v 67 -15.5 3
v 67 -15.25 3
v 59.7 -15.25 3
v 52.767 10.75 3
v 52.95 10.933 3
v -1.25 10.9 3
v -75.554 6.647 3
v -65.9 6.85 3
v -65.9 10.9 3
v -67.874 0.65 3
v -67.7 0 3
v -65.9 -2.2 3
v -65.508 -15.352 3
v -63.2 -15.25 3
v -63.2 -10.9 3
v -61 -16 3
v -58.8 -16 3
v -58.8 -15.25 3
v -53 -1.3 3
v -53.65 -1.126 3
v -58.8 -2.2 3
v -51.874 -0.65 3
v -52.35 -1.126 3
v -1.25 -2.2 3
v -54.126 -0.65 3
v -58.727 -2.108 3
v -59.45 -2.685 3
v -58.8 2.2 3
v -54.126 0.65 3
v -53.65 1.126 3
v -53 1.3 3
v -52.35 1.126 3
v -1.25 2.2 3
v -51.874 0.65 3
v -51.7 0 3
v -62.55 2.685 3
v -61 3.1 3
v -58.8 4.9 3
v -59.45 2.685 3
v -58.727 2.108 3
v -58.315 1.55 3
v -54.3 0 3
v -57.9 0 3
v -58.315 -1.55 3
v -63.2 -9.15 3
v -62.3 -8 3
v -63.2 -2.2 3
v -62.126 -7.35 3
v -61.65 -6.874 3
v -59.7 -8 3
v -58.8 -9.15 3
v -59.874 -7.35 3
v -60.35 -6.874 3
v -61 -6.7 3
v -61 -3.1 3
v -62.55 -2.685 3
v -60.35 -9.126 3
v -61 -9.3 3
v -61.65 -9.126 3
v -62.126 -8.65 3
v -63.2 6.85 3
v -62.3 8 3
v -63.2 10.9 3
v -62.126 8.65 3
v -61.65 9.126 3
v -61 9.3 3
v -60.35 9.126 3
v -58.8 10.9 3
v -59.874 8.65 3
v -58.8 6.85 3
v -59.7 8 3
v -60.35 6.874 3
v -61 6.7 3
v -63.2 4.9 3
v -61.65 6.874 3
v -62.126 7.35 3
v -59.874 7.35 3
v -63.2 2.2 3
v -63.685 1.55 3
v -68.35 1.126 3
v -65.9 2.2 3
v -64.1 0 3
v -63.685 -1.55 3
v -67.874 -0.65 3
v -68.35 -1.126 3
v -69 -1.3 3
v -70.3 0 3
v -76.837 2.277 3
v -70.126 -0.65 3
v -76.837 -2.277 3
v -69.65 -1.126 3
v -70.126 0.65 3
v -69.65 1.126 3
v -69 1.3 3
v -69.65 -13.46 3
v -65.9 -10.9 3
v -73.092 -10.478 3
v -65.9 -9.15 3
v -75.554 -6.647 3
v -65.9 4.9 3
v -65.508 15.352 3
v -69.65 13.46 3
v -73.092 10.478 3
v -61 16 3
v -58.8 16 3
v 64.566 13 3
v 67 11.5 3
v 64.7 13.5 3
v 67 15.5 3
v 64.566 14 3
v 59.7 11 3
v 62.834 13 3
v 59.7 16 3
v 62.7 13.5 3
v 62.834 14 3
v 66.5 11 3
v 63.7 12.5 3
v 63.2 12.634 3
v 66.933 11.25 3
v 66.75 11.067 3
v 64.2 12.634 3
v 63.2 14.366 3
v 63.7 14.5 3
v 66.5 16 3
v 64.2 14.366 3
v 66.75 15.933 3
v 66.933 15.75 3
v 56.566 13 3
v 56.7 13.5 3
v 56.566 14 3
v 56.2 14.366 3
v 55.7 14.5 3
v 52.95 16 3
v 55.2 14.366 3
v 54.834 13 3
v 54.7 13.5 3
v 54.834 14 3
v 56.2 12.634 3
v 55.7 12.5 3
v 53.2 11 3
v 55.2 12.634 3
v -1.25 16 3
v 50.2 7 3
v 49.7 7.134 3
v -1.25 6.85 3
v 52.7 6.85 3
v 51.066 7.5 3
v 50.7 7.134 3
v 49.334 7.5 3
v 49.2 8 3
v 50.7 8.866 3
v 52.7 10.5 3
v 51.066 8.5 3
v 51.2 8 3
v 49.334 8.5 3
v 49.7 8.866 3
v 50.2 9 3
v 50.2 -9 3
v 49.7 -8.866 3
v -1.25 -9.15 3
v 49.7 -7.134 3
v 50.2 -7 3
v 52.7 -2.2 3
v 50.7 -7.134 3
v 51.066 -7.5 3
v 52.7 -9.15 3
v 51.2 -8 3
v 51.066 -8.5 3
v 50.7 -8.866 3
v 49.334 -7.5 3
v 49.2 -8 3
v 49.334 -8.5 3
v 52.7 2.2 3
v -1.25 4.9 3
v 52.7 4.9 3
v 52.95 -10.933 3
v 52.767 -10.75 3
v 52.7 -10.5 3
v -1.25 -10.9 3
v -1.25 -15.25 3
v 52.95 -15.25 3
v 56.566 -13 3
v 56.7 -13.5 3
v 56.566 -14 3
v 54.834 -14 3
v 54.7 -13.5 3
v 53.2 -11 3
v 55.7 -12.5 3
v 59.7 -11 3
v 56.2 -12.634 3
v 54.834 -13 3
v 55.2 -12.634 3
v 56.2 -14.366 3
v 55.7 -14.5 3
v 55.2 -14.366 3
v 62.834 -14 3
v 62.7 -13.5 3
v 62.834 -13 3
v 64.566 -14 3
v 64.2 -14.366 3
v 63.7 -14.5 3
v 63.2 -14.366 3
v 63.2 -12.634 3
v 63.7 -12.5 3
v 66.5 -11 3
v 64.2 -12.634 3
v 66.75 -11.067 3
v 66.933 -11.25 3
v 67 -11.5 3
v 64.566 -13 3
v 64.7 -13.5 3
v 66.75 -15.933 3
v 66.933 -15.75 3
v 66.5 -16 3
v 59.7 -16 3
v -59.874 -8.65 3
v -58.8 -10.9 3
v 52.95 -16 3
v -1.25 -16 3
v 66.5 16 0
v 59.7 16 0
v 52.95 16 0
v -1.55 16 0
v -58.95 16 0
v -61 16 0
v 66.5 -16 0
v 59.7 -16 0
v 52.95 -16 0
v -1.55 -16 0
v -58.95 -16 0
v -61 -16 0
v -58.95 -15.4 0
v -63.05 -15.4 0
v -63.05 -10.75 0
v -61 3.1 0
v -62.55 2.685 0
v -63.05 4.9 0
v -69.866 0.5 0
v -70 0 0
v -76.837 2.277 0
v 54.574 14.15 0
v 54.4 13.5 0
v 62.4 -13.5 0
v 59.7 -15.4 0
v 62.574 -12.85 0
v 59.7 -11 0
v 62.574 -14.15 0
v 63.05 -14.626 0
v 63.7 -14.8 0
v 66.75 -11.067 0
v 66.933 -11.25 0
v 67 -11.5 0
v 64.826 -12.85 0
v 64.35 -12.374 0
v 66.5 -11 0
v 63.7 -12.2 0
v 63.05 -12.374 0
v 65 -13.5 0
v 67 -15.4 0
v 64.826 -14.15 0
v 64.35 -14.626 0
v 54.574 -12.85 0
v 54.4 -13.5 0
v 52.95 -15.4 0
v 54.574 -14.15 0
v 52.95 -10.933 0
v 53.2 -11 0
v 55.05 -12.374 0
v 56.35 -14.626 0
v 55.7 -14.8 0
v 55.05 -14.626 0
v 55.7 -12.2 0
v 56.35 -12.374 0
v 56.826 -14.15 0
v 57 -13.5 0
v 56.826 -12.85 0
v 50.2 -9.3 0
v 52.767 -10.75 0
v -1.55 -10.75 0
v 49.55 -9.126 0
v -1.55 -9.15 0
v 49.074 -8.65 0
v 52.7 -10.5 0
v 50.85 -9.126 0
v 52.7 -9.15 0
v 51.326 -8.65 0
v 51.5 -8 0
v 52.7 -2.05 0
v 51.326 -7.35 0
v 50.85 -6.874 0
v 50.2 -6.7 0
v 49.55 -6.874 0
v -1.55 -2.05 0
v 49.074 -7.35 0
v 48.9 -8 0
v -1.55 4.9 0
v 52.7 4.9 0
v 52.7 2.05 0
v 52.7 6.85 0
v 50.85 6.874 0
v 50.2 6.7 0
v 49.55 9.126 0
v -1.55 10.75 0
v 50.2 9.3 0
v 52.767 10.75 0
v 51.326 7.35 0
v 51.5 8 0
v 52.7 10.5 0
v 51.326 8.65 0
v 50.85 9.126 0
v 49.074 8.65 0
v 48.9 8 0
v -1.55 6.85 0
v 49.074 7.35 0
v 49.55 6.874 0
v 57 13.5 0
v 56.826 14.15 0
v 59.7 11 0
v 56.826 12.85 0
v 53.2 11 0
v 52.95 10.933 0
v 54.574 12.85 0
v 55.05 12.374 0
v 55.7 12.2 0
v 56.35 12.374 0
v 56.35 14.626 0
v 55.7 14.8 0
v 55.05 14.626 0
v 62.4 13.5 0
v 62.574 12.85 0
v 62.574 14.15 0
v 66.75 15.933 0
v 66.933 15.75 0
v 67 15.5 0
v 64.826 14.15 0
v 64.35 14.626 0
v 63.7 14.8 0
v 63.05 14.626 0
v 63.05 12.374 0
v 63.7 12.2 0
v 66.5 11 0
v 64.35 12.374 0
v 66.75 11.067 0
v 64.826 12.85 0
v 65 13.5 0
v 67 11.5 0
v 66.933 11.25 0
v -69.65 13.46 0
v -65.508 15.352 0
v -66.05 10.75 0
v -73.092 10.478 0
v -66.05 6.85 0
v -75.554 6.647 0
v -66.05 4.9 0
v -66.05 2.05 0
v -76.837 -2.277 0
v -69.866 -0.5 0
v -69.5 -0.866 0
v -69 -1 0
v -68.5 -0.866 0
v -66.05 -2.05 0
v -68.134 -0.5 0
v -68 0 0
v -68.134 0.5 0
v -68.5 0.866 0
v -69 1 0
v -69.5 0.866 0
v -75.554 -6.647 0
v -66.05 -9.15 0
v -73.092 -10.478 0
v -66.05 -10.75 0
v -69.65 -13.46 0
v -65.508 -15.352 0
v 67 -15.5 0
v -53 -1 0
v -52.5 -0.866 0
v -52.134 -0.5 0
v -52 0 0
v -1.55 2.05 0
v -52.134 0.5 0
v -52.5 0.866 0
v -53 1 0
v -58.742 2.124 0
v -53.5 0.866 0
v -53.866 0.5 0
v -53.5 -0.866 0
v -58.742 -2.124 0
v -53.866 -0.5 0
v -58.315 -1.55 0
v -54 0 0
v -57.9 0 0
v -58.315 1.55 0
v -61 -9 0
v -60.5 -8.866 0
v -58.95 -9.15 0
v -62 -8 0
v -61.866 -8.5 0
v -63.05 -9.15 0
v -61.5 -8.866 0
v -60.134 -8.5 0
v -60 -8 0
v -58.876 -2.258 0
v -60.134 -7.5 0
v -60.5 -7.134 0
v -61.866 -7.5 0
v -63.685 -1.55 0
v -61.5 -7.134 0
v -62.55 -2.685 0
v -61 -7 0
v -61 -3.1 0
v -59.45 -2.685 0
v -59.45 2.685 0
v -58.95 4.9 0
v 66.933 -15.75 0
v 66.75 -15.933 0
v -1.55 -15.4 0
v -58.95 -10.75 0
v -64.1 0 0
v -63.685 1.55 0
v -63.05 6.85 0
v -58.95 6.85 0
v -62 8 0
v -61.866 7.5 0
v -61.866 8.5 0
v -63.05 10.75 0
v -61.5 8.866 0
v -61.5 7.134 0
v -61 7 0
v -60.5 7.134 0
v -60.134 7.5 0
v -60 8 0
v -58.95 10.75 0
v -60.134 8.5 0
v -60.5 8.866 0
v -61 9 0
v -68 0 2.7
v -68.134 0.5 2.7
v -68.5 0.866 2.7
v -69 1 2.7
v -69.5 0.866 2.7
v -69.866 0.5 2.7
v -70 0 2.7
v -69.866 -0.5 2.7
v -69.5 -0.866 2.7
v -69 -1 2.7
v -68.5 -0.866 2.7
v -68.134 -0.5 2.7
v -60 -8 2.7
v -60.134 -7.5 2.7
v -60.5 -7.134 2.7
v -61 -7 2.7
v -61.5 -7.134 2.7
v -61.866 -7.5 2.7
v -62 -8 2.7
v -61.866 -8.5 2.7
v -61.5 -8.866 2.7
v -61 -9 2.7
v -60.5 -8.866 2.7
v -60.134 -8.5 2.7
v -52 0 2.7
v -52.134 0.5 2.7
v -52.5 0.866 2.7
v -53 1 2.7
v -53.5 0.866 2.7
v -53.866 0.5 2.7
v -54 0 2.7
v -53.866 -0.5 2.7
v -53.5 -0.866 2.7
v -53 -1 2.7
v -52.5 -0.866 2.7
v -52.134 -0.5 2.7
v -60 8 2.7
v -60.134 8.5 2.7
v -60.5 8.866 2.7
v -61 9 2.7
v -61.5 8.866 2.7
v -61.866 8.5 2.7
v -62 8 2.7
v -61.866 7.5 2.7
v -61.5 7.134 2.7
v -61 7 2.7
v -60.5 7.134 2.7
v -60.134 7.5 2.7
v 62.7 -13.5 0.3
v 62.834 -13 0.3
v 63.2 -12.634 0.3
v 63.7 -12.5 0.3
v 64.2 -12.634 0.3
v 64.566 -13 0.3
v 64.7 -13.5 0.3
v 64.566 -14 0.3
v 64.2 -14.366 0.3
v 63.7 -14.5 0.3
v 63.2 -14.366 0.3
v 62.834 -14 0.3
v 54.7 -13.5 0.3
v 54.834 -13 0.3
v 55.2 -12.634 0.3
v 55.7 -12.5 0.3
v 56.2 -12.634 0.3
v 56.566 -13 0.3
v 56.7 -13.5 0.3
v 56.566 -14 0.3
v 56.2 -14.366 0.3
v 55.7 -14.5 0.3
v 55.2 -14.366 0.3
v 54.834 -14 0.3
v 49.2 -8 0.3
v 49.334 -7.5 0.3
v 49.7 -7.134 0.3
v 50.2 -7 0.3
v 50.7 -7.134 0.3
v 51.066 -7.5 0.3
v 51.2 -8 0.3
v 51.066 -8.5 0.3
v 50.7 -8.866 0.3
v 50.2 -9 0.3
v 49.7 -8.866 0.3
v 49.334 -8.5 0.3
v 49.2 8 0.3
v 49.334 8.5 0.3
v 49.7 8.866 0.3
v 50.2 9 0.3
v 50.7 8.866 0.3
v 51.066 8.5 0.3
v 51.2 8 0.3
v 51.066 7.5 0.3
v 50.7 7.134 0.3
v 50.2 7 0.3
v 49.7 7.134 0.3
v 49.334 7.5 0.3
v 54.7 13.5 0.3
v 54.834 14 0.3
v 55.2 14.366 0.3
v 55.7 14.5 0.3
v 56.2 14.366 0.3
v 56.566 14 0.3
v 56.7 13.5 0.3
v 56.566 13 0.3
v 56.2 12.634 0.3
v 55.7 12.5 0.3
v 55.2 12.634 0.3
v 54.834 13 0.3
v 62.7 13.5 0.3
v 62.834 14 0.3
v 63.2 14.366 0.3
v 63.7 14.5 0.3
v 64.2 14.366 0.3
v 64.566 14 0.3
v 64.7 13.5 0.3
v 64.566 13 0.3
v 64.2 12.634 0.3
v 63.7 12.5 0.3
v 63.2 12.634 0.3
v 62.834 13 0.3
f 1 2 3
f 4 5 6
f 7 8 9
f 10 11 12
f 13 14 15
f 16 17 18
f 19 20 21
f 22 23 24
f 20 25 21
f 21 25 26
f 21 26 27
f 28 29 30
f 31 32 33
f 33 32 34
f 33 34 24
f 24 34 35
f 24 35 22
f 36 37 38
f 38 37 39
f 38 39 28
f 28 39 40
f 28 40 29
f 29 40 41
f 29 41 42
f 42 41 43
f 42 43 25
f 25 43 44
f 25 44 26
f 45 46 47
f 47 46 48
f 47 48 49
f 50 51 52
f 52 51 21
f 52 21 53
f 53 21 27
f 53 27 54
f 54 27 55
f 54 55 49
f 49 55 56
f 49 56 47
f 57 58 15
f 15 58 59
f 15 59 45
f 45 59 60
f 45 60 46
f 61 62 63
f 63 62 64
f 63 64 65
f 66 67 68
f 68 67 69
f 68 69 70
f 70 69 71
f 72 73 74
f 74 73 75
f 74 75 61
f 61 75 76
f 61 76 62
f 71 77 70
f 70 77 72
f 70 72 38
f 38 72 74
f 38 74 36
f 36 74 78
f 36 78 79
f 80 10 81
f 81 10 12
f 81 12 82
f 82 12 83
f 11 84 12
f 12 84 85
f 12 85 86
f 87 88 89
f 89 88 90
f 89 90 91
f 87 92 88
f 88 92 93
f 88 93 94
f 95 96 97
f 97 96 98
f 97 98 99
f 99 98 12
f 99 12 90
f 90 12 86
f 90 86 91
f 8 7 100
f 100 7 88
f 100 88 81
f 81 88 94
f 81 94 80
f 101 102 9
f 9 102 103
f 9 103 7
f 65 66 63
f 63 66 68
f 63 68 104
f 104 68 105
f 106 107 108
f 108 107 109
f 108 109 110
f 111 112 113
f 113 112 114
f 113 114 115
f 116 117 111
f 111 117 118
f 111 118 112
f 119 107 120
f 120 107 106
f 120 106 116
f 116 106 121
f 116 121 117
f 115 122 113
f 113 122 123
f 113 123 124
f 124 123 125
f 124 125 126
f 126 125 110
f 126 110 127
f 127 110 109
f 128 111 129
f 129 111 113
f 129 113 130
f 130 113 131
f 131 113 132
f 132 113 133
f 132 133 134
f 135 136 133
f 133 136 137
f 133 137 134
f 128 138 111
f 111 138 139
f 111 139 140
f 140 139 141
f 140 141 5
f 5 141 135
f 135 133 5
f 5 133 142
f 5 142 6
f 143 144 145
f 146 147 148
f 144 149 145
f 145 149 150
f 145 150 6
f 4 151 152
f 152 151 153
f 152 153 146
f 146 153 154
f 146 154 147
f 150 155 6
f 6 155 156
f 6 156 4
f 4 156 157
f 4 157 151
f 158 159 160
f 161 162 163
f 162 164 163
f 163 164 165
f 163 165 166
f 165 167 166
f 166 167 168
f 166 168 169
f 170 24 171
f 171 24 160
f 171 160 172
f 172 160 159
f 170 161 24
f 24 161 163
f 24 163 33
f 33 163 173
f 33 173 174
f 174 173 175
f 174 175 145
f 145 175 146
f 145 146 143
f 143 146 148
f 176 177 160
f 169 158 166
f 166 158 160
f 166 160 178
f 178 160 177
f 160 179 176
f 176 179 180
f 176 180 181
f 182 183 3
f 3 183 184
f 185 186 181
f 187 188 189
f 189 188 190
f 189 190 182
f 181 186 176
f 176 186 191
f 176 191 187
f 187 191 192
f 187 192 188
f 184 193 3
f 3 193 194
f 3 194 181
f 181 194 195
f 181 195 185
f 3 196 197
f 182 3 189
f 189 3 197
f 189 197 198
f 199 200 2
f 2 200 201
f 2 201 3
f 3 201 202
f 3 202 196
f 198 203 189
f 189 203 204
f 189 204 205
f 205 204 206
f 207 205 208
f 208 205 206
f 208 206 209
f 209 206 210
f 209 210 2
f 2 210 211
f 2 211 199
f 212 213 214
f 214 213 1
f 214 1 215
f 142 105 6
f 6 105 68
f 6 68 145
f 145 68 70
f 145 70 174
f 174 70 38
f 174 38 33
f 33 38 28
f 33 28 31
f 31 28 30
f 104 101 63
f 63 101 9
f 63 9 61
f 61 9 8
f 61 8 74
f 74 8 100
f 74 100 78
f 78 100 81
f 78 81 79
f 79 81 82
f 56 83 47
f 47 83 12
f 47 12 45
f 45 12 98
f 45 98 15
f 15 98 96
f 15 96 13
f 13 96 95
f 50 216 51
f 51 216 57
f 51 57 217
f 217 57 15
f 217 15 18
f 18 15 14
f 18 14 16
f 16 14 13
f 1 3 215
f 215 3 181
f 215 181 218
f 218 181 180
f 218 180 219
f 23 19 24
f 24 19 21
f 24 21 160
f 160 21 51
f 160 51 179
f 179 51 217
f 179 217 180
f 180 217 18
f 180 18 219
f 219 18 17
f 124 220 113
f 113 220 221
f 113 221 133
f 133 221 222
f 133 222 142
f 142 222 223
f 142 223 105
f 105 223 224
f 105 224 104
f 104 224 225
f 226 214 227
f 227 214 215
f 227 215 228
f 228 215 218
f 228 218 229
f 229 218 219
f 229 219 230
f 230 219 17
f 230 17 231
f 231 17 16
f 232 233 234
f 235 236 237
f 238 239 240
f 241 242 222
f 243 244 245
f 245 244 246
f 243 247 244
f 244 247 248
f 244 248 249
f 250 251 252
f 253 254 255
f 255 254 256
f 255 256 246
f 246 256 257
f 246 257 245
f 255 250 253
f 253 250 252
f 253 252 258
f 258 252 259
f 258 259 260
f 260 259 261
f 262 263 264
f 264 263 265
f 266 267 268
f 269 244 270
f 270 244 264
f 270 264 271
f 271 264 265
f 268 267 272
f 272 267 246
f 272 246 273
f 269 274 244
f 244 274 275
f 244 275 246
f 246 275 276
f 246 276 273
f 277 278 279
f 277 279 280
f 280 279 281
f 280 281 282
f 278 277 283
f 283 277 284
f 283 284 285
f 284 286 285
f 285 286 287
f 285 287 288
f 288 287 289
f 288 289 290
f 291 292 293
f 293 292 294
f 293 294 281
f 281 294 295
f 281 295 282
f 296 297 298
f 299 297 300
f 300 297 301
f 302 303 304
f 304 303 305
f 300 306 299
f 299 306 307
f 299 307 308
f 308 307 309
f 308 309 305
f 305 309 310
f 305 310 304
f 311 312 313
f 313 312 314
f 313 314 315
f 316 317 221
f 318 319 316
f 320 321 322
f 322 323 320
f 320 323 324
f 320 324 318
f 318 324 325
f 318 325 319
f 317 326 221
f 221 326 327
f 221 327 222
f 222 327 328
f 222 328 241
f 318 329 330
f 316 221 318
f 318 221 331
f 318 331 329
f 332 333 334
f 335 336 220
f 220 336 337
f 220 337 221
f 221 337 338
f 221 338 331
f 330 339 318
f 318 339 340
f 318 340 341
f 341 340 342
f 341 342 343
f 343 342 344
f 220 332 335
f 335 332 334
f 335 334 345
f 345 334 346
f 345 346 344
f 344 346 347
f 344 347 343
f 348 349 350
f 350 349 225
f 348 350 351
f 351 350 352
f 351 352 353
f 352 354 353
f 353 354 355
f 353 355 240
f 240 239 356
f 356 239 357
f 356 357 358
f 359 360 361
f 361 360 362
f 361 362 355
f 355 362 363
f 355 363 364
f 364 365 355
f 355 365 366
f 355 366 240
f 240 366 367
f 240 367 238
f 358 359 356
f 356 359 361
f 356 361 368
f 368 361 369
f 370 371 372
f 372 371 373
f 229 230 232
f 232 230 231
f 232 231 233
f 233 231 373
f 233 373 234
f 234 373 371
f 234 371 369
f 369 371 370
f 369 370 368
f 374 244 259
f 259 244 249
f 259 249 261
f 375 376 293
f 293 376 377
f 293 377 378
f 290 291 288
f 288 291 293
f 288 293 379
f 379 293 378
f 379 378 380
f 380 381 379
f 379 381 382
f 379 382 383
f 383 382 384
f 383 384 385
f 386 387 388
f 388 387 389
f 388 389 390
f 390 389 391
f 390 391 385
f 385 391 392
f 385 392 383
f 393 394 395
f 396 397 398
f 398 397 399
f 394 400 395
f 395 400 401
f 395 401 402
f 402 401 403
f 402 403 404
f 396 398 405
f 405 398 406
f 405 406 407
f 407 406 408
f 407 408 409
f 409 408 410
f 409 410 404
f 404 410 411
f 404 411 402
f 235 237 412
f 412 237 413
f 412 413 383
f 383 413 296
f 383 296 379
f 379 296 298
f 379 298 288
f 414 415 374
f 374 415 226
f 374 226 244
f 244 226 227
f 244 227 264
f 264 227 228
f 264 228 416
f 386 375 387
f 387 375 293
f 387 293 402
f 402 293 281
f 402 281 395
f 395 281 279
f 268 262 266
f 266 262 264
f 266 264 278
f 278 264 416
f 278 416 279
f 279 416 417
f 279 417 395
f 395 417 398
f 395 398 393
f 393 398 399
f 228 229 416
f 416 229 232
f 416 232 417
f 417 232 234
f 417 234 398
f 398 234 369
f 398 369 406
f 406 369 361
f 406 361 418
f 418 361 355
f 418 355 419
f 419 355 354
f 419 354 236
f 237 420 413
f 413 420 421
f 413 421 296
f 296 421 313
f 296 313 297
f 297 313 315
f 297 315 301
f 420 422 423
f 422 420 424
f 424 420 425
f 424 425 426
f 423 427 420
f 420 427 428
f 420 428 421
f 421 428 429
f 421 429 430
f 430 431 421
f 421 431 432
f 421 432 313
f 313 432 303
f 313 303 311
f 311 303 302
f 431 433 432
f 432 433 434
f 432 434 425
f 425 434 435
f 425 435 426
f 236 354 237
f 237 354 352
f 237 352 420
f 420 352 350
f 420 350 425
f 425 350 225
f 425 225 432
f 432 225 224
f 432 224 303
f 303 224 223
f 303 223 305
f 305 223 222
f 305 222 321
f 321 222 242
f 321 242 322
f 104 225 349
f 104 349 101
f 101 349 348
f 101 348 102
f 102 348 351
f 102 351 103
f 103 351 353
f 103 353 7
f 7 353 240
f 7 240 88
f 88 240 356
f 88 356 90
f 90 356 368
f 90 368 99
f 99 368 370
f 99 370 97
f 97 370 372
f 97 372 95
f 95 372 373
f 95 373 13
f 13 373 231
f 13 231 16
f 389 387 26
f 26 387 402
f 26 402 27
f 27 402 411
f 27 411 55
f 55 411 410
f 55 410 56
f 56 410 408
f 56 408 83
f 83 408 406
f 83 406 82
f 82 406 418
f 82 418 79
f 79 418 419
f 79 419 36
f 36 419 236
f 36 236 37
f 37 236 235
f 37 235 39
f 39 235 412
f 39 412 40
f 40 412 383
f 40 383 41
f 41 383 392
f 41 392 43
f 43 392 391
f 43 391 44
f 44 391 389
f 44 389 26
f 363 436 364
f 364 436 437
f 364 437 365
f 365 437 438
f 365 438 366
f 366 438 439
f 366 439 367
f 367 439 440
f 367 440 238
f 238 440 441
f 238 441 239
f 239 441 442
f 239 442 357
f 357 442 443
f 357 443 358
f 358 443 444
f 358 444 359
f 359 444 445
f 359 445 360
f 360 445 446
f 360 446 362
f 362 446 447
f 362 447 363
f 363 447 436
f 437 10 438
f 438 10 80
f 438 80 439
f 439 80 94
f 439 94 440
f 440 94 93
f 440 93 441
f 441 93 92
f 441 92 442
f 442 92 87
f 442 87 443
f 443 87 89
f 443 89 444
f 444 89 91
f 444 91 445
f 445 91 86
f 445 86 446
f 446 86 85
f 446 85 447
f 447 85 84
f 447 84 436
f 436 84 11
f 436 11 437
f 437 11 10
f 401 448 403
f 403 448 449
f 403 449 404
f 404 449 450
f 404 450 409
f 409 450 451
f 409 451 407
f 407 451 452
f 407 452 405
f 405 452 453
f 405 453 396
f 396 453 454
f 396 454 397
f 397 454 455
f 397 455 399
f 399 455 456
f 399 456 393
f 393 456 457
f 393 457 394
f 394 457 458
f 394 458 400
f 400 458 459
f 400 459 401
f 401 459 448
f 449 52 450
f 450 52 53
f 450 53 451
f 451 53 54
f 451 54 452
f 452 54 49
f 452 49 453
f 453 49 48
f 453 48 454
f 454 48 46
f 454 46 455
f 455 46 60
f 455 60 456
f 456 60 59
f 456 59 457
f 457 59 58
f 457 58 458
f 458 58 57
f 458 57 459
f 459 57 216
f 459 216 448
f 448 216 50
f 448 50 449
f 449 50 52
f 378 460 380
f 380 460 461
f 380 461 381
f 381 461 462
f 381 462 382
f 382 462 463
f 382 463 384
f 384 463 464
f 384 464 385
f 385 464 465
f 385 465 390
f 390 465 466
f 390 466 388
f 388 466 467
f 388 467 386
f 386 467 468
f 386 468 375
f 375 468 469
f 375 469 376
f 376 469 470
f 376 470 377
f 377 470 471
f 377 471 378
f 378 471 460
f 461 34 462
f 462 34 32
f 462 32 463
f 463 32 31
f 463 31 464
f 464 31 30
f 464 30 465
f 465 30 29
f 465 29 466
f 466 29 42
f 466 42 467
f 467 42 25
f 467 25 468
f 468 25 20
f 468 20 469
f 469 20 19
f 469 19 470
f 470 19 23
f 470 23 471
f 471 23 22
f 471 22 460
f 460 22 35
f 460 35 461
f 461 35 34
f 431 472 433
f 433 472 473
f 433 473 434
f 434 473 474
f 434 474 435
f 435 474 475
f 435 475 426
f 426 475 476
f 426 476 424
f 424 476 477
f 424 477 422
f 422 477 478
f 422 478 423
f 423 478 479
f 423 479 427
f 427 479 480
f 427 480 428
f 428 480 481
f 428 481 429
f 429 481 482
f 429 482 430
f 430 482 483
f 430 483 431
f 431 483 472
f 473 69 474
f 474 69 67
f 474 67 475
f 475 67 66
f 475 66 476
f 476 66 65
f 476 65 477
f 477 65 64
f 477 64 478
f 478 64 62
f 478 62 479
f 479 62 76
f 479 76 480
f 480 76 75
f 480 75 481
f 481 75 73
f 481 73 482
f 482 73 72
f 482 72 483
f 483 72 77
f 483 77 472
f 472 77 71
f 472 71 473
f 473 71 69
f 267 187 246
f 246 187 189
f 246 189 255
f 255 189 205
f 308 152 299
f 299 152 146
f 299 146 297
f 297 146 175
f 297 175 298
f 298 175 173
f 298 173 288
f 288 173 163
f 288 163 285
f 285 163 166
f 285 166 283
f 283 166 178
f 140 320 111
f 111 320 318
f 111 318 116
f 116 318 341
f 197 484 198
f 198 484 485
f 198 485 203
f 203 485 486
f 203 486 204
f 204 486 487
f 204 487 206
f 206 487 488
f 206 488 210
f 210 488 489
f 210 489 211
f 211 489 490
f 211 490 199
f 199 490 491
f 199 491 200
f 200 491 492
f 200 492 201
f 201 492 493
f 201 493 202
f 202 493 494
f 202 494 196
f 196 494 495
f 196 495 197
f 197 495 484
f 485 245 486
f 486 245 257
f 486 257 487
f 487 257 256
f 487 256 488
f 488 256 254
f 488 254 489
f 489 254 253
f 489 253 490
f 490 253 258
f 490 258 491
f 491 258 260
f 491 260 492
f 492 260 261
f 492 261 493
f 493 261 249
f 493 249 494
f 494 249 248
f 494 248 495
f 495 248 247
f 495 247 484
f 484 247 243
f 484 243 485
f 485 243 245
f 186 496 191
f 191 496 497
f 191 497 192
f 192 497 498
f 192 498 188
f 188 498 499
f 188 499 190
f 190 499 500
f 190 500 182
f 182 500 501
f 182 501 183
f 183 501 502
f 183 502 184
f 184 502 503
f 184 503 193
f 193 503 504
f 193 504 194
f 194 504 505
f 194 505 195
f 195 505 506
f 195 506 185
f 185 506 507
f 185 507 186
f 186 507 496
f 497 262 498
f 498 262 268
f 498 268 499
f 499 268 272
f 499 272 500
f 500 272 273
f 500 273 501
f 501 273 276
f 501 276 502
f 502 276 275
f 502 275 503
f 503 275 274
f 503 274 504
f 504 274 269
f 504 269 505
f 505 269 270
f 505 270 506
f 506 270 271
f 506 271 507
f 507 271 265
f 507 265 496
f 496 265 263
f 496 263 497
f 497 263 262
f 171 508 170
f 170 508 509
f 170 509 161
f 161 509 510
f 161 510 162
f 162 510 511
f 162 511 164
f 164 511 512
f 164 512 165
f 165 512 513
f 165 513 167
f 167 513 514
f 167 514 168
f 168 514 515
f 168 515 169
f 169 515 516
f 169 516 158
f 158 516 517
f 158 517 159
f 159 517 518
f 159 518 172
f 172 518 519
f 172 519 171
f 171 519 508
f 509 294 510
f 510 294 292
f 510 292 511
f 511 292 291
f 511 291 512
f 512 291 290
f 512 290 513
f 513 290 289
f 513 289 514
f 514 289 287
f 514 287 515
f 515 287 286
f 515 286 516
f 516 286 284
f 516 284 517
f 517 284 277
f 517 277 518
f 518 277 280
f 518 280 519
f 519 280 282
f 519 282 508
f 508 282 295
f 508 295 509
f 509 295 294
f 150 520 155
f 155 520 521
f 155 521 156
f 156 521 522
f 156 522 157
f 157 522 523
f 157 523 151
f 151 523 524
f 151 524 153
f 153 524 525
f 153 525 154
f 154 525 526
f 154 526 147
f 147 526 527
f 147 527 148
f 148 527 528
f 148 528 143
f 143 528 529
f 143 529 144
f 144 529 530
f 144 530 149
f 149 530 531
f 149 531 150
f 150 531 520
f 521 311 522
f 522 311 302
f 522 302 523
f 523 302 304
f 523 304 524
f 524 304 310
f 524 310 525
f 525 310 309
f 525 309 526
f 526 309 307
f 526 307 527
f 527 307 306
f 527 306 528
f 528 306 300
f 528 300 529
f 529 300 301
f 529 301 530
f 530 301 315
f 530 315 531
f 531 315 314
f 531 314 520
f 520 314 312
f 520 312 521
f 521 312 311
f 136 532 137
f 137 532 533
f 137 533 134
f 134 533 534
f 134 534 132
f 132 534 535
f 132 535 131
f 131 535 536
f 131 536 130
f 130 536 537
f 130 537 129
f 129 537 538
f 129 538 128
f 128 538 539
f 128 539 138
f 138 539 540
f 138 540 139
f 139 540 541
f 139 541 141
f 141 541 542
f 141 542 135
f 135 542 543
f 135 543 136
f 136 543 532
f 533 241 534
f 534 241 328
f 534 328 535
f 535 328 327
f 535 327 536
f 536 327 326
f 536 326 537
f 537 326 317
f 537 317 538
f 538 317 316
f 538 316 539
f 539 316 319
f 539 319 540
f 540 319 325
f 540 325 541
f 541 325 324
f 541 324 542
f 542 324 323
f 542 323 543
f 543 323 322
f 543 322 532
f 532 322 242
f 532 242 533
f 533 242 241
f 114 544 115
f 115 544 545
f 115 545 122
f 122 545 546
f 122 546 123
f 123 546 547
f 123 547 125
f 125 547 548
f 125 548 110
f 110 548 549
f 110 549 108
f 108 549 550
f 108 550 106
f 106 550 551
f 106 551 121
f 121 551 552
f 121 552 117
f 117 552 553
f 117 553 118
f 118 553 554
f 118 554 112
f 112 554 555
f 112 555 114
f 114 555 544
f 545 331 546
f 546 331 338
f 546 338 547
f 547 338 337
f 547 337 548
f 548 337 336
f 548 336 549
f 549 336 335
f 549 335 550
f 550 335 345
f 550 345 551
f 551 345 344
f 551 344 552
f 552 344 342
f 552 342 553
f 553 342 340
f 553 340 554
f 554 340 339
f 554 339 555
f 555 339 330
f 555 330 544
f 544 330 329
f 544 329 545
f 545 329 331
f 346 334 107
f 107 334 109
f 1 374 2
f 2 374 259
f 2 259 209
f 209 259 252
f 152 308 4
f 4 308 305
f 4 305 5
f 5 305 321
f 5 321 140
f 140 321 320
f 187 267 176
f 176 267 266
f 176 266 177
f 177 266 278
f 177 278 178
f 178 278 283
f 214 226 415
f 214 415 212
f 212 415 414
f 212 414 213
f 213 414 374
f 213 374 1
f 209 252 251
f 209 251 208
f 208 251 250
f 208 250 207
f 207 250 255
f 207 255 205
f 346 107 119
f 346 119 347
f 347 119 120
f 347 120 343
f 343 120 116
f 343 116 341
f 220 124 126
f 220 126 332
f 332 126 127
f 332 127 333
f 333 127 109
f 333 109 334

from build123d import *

# Parameters (mm, degrees)
Y_KSEKLIK_EKSTR_ZYON1_DEPTH                    = 3
IZIM2_R                                        = 3.1
KES_EKSTR_ZYON1_DEPTH                          = 4
M2_D_Z_BA_L_MAKINE_VIDAS_IN_HAV_A1_D           = 2
M2_D_Z_BA_L_MAKINE_VIDAS_IN_HAV_A1_CSINK_D     = 2.6
M2_D_Z_BA_L_MAKINE_VIDAS_IN_HAV_A1_CSINK_ANGLE = 90
IZIM26_W                                       = 22.3
IZIM26_H                                       = 22
KES_EKSTR_ZYON4_DEPTH                          = 4
M2_D_Z_BA_L_MAKINE_VIDAS_IN_HAV_A2_D           = 2
M2_D_Z_BA_L_MAKINE_VIDAS_IN_HAV_A2_CSINK_D     = 2.6
M2_D_Z_BA_L_MAKINE_VIDAS_IN_HAV_A2_CSINK_ANGLE = 90
IZIM33_W                                       = 8
IZIM33_H                                       = 32
KES_EKSTR_ZYON5_DEPTH                          = 10
RADYUS1_R                                      = 0.5


with BuildPart() as part:
    # Çizim1 → Yükseklik-Ekstrüzyon1 (new body)
    with BuildSketch(Plane.XY):
        with BuildLine():
            ThreePointArc((-61, 16), (-77, 0), (-61, -16))
            Line((-61, -16), (75, -16))
            Line((75, -16), (75, 16))
            Line((75, 16), (-61, 16))
        make_face()
    extrude(amount=Y_KSEKLIK_EKSTR_ZYON1_DEPTH)

    # Çizim2 → Kes-Ekstrüzyon1 (cut, through all)
    with BuildSketch(Plane.XY.offset(3)):
        with Locations((-61, 0)):
            Circle(IZIM2_R)
    extrude(amount=-KES_EKSTR_ZYON1_DEPTH, mode=Mode.SUBTRACT)

    # M2 Düz Başlı Makine Vidası İçin Havşa1 (through all)
    with Locations(Plane(origin=(-61, 8, 3), x_dir=(1, 0, 0), z_dir=(0, 0, 1))):
        with Locations((0, 0), (8, -8), (0, -16), (-8, -8)):
            CounterSinkHole(M2_D_Z_BA_L_MAKINE_VIDAS_IN_HAV_A1_D / 2, M2_D_Z_BA_L_MAKINE_VIDAS_IN_HAV_A1_CSINK_D / 2, counter_sink_angle=M2_D_Z_BA_L_MAKINE_VIDAS_IN_HAV_A1_CSINK_ANGLE)

    # Çizim26 → Kes-Ekstrüzyon4 (cut, through all)
    with BuildSketch(Plane.XY.offset(3)):
        with Locations((63.85, 0)):
            Rectangle(IZIM26_W, IZIM26_H)
    extrude(amount=-KES_EKSTR_ZYON4_DEPTH, mode=Mode.SUBTRACT)

    # M2 Düz Başlı Makine Vidası İçin Havşa2 (through all)
    with Locations(Plane(origin=(71.7, 13.5, 0), x_dir=(-1, 0, 0), z_dir=(0, 0, -1))):
        with Locations((0, 0), (8, 0), (16, 0), (21.5, -5.5), (21.5, -21.5), (16, -27), (8, -27), (0, -27)):
            CounterSinkHole(M2_D_Z_BA_L_MAKINE_VIDAS_IN_HAV_A2_D / 2, M2_D_Z_BA_L_MAKINE_VIDAS_IN_HAV_A2_CSINK_D / 2, counter_sink_angle=M2_D_Z_BA_L_MAKINE_VIDAS_IN_HAV_A2_CSINK_ANGLE)

    # Çizim33 → Kes-Ekstrüzyon5 (cut)
    with BuildSketch(Plane(origin=(0, 0, 0), x_dir=(-1, 0, 0), z_dir=(0, 0, -1))):
        with Locations((-71, 0)):
            Rectangle(IZIM33_W, IZIM33_H)
    extrude(amount=-KES_EKSTR_ZYON5_DEPTH, mode=Mode.SUBTRACT)

    # Radyus1
    radyus1_edges = [part.edges().sort_by_distance(p)[0] for p in [
        (67, 11, 1.5),
        (67, -11, 1.5),
        (67, 16, 1.5),
        (67, -16, 1.5),
        (52.7, -11, 1.5),
        (52.7, 11, 1.5),
    ]]
    fillet(radyus1_edges, radius=RADYUS1_R)


solid = part.part
